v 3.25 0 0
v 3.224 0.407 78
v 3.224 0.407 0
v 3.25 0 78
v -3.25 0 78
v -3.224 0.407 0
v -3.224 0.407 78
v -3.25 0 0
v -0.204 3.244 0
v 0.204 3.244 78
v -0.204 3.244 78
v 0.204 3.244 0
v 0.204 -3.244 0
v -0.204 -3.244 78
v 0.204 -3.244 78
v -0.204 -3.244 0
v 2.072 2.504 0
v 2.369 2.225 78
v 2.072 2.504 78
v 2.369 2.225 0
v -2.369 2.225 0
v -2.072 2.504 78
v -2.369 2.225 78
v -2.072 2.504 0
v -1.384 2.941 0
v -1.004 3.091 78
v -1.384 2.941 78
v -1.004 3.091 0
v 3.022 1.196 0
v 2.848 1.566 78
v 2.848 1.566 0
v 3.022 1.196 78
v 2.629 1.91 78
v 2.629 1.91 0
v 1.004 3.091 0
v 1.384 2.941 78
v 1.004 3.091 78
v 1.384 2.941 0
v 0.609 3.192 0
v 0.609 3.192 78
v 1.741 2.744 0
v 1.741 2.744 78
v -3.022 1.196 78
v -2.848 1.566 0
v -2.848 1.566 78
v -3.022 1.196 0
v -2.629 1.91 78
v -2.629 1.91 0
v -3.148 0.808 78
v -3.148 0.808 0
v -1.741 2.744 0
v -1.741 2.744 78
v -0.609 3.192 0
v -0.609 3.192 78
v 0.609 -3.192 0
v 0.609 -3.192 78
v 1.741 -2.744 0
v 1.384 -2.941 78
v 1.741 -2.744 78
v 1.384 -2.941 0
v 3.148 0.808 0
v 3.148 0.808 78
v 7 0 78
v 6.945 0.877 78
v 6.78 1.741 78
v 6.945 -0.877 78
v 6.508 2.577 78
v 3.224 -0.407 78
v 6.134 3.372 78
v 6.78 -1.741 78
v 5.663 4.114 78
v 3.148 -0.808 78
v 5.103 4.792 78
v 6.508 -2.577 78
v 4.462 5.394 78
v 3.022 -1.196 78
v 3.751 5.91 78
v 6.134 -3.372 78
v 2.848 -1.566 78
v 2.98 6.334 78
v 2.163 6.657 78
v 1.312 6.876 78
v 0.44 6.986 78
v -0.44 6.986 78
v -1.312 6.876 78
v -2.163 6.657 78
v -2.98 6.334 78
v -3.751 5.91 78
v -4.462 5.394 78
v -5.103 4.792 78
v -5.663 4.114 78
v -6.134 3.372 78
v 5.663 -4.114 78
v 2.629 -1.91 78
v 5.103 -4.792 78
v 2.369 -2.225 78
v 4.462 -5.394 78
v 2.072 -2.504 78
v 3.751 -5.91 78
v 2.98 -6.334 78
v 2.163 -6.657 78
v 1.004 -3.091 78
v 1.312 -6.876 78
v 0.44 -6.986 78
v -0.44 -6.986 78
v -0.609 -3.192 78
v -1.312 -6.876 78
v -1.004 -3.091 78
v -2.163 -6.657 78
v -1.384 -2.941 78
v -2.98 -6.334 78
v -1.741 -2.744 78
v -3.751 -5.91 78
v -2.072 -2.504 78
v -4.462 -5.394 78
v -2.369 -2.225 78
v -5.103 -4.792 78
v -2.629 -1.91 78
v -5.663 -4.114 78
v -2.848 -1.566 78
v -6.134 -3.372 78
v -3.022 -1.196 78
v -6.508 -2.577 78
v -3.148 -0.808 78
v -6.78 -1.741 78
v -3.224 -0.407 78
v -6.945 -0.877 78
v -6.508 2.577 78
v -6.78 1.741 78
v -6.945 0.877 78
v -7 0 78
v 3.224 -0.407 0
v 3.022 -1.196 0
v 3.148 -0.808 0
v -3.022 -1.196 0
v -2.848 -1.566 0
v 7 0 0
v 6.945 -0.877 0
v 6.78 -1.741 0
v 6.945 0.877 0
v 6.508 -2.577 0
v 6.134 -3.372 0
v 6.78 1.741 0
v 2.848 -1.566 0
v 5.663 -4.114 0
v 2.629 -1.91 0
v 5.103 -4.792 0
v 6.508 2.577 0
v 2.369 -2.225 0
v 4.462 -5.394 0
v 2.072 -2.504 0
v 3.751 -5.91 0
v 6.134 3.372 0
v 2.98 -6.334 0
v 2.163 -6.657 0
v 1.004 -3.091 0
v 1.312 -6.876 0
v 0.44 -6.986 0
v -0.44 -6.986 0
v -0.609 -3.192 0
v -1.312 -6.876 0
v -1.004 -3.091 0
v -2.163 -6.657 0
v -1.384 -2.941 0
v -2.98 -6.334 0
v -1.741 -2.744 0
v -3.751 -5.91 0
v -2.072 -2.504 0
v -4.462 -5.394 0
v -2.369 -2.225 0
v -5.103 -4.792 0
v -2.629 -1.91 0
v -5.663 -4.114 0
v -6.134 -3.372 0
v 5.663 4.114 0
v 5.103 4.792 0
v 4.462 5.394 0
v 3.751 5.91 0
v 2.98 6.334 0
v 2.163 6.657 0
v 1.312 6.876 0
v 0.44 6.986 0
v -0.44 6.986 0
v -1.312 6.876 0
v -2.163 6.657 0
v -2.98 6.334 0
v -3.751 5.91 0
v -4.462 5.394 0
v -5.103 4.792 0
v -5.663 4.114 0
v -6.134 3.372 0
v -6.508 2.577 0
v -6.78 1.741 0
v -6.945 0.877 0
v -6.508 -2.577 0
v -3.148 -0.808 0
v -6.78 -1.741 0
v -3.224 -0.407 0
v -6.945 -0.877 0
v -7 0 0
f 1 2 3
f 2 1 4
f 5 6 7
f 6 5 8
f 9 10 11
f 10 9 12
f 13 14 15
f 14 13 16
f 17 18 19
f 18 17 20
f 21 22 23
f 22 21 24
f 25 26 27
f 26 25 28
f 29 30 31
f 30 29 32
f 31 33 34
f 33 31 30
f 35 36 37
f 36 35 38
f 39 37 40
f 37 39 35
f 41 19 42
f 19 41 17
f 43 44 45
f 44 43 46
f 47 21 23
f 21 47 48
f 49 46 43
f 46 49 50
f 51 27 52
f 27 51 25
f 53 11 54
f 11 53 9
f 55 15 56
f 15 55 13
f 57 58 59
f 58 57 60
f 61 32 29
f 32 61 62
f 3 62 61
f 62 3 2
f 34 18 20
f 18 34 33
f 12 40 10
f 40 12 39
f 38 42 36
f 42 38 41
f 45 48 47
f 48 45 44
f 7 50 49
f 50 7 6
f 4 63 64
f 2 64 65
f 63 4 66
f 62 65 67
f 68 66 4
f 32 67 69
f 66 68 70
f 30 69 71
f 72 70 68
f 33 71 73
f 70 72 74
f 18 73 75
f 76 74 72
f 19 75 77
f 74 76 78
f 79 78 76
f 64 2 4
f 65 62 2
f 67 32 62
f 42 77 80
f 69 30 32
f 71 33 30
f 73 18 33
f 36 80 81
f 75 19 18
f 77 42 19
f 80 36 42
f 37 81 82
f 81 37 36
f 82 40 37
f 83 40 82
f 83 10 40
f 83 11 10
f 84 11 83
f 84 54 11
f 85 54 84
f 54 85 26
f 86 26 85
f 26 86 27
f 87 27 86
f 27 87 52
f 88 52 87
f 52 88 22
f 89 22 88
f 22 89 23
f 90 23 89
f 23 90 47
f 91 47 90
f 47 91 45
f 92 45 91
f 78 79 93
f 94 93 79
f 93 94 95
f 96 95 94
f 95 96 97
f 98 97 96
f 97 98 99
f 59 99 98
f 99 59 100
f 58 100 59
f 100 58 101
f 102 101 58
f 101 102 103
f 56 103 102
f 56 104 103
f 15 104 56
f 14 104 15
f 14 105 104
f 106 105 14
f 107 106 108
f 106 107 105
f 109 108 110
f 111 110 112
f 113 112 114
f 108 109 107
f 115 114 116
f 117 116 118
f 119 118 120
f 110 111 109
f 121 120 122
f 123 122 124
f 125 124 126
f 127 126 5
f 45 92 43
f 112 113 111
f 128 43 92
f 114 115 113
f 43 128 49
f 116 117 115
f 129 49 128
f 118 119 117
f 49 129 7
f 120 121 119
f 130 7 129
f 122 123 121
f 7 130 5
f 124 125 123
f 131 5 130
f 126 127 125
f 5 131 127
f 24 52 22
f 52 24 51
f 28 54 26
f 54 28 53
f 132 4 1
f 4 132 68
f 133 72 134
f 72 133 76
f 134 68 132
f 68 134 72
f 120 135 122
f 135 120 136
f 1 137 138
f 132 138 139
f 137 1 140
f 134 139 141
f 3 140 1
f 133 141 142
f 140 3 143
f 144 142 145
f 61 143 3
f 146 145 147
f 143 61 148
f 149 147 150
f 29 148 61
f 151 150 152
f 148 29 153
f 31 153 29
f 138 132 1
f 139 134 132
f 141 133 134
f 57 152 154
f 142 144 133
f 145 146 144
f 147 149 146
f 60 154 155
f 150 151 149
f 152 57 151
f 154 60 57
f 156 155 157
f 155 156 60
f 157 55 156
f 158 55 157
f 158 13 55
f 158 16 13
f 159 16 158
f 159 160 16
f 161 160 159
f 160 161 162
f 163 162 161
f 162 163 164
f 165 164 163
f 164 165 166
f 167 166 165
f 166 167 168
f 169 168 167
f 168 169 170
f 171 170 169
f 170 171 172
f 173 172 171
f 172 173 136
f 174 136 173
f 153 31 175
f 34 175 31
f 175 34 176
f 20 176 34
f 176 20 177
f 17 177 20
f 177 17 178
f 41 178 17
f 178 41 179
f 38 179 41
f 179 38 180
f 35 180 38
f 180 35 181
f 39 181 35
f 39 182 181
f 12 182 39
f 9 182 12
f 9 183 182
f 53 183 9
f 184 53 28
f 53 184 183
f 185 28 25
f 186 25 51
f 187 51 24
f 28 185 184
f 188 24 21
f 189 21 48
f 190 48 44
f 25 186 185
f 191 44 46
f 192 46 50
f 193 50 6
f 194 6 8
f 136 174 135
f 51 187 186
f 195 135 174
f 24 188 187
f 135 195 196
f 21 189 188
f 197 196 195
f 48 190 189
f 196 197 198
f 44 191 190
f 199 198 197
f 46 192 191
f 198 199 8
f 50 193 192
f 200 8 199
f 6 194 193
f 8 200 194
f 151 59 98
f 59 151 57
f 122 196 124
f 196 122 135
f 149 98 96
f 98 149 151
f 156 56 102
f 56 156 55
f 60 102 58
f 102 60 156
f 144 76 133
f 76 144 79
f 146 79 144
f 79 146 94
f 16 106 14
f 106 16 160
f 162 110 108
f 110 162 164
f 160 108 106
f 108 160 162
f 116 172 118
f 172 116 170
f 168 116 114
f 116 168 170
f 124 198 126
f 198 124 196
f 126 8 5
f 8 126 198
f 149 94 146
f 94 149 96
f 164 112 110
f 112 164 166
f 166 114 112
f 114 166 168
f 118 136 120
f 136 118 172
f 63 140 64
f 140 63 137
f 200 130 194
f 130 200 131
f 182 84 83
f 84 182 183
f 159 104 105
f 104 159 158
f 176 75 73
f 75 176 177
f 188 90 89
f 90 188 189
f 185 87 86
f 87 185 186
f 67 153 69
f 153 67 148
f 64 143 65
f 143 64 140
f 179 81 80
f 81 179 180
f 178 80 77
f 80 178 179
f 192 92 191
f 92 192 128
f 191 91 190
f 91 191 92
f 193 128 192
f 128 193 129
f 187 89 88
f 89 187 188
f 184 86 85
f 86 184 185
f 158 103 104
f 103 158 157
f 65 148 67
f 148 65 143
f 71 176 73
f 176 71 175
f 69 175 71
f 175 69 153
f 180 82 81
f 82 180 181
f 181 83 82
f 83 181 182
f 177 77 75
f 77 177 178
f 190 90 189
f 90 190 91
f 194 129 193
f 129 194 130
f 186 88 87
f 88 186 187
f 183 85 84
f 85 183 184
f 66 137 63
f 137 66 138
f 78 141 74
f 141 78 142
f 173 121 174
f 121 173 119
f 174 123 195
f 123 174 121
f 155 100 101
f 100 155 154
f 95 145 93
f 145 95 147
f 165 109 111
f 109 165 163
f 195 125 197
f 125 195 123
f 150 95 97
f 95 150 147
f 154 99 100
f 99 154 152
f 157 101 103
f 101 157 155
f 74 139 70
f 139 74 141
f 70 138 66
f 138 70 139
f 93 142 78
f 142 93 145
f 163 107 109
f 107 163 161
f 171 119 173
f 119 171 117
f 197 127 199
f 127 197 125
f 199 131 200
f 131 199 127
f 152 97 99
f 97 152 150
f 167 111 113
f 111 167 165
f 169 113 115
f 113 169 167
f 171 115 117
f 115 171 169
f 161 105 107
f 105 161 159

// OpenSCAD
$fn = 50;


difference() {
	union() {
		cylinder(h = 78, r = 7.0000000000);
	}
	union() {
		translate(v = [0, 0, -100]) {
			cylinder(h = 200, r = 3.2500000000);
		}
		translate(v = [0, 0, -100]) {
			cylinder(h = 200, r = 1.8000000000);
		}
	}
}
